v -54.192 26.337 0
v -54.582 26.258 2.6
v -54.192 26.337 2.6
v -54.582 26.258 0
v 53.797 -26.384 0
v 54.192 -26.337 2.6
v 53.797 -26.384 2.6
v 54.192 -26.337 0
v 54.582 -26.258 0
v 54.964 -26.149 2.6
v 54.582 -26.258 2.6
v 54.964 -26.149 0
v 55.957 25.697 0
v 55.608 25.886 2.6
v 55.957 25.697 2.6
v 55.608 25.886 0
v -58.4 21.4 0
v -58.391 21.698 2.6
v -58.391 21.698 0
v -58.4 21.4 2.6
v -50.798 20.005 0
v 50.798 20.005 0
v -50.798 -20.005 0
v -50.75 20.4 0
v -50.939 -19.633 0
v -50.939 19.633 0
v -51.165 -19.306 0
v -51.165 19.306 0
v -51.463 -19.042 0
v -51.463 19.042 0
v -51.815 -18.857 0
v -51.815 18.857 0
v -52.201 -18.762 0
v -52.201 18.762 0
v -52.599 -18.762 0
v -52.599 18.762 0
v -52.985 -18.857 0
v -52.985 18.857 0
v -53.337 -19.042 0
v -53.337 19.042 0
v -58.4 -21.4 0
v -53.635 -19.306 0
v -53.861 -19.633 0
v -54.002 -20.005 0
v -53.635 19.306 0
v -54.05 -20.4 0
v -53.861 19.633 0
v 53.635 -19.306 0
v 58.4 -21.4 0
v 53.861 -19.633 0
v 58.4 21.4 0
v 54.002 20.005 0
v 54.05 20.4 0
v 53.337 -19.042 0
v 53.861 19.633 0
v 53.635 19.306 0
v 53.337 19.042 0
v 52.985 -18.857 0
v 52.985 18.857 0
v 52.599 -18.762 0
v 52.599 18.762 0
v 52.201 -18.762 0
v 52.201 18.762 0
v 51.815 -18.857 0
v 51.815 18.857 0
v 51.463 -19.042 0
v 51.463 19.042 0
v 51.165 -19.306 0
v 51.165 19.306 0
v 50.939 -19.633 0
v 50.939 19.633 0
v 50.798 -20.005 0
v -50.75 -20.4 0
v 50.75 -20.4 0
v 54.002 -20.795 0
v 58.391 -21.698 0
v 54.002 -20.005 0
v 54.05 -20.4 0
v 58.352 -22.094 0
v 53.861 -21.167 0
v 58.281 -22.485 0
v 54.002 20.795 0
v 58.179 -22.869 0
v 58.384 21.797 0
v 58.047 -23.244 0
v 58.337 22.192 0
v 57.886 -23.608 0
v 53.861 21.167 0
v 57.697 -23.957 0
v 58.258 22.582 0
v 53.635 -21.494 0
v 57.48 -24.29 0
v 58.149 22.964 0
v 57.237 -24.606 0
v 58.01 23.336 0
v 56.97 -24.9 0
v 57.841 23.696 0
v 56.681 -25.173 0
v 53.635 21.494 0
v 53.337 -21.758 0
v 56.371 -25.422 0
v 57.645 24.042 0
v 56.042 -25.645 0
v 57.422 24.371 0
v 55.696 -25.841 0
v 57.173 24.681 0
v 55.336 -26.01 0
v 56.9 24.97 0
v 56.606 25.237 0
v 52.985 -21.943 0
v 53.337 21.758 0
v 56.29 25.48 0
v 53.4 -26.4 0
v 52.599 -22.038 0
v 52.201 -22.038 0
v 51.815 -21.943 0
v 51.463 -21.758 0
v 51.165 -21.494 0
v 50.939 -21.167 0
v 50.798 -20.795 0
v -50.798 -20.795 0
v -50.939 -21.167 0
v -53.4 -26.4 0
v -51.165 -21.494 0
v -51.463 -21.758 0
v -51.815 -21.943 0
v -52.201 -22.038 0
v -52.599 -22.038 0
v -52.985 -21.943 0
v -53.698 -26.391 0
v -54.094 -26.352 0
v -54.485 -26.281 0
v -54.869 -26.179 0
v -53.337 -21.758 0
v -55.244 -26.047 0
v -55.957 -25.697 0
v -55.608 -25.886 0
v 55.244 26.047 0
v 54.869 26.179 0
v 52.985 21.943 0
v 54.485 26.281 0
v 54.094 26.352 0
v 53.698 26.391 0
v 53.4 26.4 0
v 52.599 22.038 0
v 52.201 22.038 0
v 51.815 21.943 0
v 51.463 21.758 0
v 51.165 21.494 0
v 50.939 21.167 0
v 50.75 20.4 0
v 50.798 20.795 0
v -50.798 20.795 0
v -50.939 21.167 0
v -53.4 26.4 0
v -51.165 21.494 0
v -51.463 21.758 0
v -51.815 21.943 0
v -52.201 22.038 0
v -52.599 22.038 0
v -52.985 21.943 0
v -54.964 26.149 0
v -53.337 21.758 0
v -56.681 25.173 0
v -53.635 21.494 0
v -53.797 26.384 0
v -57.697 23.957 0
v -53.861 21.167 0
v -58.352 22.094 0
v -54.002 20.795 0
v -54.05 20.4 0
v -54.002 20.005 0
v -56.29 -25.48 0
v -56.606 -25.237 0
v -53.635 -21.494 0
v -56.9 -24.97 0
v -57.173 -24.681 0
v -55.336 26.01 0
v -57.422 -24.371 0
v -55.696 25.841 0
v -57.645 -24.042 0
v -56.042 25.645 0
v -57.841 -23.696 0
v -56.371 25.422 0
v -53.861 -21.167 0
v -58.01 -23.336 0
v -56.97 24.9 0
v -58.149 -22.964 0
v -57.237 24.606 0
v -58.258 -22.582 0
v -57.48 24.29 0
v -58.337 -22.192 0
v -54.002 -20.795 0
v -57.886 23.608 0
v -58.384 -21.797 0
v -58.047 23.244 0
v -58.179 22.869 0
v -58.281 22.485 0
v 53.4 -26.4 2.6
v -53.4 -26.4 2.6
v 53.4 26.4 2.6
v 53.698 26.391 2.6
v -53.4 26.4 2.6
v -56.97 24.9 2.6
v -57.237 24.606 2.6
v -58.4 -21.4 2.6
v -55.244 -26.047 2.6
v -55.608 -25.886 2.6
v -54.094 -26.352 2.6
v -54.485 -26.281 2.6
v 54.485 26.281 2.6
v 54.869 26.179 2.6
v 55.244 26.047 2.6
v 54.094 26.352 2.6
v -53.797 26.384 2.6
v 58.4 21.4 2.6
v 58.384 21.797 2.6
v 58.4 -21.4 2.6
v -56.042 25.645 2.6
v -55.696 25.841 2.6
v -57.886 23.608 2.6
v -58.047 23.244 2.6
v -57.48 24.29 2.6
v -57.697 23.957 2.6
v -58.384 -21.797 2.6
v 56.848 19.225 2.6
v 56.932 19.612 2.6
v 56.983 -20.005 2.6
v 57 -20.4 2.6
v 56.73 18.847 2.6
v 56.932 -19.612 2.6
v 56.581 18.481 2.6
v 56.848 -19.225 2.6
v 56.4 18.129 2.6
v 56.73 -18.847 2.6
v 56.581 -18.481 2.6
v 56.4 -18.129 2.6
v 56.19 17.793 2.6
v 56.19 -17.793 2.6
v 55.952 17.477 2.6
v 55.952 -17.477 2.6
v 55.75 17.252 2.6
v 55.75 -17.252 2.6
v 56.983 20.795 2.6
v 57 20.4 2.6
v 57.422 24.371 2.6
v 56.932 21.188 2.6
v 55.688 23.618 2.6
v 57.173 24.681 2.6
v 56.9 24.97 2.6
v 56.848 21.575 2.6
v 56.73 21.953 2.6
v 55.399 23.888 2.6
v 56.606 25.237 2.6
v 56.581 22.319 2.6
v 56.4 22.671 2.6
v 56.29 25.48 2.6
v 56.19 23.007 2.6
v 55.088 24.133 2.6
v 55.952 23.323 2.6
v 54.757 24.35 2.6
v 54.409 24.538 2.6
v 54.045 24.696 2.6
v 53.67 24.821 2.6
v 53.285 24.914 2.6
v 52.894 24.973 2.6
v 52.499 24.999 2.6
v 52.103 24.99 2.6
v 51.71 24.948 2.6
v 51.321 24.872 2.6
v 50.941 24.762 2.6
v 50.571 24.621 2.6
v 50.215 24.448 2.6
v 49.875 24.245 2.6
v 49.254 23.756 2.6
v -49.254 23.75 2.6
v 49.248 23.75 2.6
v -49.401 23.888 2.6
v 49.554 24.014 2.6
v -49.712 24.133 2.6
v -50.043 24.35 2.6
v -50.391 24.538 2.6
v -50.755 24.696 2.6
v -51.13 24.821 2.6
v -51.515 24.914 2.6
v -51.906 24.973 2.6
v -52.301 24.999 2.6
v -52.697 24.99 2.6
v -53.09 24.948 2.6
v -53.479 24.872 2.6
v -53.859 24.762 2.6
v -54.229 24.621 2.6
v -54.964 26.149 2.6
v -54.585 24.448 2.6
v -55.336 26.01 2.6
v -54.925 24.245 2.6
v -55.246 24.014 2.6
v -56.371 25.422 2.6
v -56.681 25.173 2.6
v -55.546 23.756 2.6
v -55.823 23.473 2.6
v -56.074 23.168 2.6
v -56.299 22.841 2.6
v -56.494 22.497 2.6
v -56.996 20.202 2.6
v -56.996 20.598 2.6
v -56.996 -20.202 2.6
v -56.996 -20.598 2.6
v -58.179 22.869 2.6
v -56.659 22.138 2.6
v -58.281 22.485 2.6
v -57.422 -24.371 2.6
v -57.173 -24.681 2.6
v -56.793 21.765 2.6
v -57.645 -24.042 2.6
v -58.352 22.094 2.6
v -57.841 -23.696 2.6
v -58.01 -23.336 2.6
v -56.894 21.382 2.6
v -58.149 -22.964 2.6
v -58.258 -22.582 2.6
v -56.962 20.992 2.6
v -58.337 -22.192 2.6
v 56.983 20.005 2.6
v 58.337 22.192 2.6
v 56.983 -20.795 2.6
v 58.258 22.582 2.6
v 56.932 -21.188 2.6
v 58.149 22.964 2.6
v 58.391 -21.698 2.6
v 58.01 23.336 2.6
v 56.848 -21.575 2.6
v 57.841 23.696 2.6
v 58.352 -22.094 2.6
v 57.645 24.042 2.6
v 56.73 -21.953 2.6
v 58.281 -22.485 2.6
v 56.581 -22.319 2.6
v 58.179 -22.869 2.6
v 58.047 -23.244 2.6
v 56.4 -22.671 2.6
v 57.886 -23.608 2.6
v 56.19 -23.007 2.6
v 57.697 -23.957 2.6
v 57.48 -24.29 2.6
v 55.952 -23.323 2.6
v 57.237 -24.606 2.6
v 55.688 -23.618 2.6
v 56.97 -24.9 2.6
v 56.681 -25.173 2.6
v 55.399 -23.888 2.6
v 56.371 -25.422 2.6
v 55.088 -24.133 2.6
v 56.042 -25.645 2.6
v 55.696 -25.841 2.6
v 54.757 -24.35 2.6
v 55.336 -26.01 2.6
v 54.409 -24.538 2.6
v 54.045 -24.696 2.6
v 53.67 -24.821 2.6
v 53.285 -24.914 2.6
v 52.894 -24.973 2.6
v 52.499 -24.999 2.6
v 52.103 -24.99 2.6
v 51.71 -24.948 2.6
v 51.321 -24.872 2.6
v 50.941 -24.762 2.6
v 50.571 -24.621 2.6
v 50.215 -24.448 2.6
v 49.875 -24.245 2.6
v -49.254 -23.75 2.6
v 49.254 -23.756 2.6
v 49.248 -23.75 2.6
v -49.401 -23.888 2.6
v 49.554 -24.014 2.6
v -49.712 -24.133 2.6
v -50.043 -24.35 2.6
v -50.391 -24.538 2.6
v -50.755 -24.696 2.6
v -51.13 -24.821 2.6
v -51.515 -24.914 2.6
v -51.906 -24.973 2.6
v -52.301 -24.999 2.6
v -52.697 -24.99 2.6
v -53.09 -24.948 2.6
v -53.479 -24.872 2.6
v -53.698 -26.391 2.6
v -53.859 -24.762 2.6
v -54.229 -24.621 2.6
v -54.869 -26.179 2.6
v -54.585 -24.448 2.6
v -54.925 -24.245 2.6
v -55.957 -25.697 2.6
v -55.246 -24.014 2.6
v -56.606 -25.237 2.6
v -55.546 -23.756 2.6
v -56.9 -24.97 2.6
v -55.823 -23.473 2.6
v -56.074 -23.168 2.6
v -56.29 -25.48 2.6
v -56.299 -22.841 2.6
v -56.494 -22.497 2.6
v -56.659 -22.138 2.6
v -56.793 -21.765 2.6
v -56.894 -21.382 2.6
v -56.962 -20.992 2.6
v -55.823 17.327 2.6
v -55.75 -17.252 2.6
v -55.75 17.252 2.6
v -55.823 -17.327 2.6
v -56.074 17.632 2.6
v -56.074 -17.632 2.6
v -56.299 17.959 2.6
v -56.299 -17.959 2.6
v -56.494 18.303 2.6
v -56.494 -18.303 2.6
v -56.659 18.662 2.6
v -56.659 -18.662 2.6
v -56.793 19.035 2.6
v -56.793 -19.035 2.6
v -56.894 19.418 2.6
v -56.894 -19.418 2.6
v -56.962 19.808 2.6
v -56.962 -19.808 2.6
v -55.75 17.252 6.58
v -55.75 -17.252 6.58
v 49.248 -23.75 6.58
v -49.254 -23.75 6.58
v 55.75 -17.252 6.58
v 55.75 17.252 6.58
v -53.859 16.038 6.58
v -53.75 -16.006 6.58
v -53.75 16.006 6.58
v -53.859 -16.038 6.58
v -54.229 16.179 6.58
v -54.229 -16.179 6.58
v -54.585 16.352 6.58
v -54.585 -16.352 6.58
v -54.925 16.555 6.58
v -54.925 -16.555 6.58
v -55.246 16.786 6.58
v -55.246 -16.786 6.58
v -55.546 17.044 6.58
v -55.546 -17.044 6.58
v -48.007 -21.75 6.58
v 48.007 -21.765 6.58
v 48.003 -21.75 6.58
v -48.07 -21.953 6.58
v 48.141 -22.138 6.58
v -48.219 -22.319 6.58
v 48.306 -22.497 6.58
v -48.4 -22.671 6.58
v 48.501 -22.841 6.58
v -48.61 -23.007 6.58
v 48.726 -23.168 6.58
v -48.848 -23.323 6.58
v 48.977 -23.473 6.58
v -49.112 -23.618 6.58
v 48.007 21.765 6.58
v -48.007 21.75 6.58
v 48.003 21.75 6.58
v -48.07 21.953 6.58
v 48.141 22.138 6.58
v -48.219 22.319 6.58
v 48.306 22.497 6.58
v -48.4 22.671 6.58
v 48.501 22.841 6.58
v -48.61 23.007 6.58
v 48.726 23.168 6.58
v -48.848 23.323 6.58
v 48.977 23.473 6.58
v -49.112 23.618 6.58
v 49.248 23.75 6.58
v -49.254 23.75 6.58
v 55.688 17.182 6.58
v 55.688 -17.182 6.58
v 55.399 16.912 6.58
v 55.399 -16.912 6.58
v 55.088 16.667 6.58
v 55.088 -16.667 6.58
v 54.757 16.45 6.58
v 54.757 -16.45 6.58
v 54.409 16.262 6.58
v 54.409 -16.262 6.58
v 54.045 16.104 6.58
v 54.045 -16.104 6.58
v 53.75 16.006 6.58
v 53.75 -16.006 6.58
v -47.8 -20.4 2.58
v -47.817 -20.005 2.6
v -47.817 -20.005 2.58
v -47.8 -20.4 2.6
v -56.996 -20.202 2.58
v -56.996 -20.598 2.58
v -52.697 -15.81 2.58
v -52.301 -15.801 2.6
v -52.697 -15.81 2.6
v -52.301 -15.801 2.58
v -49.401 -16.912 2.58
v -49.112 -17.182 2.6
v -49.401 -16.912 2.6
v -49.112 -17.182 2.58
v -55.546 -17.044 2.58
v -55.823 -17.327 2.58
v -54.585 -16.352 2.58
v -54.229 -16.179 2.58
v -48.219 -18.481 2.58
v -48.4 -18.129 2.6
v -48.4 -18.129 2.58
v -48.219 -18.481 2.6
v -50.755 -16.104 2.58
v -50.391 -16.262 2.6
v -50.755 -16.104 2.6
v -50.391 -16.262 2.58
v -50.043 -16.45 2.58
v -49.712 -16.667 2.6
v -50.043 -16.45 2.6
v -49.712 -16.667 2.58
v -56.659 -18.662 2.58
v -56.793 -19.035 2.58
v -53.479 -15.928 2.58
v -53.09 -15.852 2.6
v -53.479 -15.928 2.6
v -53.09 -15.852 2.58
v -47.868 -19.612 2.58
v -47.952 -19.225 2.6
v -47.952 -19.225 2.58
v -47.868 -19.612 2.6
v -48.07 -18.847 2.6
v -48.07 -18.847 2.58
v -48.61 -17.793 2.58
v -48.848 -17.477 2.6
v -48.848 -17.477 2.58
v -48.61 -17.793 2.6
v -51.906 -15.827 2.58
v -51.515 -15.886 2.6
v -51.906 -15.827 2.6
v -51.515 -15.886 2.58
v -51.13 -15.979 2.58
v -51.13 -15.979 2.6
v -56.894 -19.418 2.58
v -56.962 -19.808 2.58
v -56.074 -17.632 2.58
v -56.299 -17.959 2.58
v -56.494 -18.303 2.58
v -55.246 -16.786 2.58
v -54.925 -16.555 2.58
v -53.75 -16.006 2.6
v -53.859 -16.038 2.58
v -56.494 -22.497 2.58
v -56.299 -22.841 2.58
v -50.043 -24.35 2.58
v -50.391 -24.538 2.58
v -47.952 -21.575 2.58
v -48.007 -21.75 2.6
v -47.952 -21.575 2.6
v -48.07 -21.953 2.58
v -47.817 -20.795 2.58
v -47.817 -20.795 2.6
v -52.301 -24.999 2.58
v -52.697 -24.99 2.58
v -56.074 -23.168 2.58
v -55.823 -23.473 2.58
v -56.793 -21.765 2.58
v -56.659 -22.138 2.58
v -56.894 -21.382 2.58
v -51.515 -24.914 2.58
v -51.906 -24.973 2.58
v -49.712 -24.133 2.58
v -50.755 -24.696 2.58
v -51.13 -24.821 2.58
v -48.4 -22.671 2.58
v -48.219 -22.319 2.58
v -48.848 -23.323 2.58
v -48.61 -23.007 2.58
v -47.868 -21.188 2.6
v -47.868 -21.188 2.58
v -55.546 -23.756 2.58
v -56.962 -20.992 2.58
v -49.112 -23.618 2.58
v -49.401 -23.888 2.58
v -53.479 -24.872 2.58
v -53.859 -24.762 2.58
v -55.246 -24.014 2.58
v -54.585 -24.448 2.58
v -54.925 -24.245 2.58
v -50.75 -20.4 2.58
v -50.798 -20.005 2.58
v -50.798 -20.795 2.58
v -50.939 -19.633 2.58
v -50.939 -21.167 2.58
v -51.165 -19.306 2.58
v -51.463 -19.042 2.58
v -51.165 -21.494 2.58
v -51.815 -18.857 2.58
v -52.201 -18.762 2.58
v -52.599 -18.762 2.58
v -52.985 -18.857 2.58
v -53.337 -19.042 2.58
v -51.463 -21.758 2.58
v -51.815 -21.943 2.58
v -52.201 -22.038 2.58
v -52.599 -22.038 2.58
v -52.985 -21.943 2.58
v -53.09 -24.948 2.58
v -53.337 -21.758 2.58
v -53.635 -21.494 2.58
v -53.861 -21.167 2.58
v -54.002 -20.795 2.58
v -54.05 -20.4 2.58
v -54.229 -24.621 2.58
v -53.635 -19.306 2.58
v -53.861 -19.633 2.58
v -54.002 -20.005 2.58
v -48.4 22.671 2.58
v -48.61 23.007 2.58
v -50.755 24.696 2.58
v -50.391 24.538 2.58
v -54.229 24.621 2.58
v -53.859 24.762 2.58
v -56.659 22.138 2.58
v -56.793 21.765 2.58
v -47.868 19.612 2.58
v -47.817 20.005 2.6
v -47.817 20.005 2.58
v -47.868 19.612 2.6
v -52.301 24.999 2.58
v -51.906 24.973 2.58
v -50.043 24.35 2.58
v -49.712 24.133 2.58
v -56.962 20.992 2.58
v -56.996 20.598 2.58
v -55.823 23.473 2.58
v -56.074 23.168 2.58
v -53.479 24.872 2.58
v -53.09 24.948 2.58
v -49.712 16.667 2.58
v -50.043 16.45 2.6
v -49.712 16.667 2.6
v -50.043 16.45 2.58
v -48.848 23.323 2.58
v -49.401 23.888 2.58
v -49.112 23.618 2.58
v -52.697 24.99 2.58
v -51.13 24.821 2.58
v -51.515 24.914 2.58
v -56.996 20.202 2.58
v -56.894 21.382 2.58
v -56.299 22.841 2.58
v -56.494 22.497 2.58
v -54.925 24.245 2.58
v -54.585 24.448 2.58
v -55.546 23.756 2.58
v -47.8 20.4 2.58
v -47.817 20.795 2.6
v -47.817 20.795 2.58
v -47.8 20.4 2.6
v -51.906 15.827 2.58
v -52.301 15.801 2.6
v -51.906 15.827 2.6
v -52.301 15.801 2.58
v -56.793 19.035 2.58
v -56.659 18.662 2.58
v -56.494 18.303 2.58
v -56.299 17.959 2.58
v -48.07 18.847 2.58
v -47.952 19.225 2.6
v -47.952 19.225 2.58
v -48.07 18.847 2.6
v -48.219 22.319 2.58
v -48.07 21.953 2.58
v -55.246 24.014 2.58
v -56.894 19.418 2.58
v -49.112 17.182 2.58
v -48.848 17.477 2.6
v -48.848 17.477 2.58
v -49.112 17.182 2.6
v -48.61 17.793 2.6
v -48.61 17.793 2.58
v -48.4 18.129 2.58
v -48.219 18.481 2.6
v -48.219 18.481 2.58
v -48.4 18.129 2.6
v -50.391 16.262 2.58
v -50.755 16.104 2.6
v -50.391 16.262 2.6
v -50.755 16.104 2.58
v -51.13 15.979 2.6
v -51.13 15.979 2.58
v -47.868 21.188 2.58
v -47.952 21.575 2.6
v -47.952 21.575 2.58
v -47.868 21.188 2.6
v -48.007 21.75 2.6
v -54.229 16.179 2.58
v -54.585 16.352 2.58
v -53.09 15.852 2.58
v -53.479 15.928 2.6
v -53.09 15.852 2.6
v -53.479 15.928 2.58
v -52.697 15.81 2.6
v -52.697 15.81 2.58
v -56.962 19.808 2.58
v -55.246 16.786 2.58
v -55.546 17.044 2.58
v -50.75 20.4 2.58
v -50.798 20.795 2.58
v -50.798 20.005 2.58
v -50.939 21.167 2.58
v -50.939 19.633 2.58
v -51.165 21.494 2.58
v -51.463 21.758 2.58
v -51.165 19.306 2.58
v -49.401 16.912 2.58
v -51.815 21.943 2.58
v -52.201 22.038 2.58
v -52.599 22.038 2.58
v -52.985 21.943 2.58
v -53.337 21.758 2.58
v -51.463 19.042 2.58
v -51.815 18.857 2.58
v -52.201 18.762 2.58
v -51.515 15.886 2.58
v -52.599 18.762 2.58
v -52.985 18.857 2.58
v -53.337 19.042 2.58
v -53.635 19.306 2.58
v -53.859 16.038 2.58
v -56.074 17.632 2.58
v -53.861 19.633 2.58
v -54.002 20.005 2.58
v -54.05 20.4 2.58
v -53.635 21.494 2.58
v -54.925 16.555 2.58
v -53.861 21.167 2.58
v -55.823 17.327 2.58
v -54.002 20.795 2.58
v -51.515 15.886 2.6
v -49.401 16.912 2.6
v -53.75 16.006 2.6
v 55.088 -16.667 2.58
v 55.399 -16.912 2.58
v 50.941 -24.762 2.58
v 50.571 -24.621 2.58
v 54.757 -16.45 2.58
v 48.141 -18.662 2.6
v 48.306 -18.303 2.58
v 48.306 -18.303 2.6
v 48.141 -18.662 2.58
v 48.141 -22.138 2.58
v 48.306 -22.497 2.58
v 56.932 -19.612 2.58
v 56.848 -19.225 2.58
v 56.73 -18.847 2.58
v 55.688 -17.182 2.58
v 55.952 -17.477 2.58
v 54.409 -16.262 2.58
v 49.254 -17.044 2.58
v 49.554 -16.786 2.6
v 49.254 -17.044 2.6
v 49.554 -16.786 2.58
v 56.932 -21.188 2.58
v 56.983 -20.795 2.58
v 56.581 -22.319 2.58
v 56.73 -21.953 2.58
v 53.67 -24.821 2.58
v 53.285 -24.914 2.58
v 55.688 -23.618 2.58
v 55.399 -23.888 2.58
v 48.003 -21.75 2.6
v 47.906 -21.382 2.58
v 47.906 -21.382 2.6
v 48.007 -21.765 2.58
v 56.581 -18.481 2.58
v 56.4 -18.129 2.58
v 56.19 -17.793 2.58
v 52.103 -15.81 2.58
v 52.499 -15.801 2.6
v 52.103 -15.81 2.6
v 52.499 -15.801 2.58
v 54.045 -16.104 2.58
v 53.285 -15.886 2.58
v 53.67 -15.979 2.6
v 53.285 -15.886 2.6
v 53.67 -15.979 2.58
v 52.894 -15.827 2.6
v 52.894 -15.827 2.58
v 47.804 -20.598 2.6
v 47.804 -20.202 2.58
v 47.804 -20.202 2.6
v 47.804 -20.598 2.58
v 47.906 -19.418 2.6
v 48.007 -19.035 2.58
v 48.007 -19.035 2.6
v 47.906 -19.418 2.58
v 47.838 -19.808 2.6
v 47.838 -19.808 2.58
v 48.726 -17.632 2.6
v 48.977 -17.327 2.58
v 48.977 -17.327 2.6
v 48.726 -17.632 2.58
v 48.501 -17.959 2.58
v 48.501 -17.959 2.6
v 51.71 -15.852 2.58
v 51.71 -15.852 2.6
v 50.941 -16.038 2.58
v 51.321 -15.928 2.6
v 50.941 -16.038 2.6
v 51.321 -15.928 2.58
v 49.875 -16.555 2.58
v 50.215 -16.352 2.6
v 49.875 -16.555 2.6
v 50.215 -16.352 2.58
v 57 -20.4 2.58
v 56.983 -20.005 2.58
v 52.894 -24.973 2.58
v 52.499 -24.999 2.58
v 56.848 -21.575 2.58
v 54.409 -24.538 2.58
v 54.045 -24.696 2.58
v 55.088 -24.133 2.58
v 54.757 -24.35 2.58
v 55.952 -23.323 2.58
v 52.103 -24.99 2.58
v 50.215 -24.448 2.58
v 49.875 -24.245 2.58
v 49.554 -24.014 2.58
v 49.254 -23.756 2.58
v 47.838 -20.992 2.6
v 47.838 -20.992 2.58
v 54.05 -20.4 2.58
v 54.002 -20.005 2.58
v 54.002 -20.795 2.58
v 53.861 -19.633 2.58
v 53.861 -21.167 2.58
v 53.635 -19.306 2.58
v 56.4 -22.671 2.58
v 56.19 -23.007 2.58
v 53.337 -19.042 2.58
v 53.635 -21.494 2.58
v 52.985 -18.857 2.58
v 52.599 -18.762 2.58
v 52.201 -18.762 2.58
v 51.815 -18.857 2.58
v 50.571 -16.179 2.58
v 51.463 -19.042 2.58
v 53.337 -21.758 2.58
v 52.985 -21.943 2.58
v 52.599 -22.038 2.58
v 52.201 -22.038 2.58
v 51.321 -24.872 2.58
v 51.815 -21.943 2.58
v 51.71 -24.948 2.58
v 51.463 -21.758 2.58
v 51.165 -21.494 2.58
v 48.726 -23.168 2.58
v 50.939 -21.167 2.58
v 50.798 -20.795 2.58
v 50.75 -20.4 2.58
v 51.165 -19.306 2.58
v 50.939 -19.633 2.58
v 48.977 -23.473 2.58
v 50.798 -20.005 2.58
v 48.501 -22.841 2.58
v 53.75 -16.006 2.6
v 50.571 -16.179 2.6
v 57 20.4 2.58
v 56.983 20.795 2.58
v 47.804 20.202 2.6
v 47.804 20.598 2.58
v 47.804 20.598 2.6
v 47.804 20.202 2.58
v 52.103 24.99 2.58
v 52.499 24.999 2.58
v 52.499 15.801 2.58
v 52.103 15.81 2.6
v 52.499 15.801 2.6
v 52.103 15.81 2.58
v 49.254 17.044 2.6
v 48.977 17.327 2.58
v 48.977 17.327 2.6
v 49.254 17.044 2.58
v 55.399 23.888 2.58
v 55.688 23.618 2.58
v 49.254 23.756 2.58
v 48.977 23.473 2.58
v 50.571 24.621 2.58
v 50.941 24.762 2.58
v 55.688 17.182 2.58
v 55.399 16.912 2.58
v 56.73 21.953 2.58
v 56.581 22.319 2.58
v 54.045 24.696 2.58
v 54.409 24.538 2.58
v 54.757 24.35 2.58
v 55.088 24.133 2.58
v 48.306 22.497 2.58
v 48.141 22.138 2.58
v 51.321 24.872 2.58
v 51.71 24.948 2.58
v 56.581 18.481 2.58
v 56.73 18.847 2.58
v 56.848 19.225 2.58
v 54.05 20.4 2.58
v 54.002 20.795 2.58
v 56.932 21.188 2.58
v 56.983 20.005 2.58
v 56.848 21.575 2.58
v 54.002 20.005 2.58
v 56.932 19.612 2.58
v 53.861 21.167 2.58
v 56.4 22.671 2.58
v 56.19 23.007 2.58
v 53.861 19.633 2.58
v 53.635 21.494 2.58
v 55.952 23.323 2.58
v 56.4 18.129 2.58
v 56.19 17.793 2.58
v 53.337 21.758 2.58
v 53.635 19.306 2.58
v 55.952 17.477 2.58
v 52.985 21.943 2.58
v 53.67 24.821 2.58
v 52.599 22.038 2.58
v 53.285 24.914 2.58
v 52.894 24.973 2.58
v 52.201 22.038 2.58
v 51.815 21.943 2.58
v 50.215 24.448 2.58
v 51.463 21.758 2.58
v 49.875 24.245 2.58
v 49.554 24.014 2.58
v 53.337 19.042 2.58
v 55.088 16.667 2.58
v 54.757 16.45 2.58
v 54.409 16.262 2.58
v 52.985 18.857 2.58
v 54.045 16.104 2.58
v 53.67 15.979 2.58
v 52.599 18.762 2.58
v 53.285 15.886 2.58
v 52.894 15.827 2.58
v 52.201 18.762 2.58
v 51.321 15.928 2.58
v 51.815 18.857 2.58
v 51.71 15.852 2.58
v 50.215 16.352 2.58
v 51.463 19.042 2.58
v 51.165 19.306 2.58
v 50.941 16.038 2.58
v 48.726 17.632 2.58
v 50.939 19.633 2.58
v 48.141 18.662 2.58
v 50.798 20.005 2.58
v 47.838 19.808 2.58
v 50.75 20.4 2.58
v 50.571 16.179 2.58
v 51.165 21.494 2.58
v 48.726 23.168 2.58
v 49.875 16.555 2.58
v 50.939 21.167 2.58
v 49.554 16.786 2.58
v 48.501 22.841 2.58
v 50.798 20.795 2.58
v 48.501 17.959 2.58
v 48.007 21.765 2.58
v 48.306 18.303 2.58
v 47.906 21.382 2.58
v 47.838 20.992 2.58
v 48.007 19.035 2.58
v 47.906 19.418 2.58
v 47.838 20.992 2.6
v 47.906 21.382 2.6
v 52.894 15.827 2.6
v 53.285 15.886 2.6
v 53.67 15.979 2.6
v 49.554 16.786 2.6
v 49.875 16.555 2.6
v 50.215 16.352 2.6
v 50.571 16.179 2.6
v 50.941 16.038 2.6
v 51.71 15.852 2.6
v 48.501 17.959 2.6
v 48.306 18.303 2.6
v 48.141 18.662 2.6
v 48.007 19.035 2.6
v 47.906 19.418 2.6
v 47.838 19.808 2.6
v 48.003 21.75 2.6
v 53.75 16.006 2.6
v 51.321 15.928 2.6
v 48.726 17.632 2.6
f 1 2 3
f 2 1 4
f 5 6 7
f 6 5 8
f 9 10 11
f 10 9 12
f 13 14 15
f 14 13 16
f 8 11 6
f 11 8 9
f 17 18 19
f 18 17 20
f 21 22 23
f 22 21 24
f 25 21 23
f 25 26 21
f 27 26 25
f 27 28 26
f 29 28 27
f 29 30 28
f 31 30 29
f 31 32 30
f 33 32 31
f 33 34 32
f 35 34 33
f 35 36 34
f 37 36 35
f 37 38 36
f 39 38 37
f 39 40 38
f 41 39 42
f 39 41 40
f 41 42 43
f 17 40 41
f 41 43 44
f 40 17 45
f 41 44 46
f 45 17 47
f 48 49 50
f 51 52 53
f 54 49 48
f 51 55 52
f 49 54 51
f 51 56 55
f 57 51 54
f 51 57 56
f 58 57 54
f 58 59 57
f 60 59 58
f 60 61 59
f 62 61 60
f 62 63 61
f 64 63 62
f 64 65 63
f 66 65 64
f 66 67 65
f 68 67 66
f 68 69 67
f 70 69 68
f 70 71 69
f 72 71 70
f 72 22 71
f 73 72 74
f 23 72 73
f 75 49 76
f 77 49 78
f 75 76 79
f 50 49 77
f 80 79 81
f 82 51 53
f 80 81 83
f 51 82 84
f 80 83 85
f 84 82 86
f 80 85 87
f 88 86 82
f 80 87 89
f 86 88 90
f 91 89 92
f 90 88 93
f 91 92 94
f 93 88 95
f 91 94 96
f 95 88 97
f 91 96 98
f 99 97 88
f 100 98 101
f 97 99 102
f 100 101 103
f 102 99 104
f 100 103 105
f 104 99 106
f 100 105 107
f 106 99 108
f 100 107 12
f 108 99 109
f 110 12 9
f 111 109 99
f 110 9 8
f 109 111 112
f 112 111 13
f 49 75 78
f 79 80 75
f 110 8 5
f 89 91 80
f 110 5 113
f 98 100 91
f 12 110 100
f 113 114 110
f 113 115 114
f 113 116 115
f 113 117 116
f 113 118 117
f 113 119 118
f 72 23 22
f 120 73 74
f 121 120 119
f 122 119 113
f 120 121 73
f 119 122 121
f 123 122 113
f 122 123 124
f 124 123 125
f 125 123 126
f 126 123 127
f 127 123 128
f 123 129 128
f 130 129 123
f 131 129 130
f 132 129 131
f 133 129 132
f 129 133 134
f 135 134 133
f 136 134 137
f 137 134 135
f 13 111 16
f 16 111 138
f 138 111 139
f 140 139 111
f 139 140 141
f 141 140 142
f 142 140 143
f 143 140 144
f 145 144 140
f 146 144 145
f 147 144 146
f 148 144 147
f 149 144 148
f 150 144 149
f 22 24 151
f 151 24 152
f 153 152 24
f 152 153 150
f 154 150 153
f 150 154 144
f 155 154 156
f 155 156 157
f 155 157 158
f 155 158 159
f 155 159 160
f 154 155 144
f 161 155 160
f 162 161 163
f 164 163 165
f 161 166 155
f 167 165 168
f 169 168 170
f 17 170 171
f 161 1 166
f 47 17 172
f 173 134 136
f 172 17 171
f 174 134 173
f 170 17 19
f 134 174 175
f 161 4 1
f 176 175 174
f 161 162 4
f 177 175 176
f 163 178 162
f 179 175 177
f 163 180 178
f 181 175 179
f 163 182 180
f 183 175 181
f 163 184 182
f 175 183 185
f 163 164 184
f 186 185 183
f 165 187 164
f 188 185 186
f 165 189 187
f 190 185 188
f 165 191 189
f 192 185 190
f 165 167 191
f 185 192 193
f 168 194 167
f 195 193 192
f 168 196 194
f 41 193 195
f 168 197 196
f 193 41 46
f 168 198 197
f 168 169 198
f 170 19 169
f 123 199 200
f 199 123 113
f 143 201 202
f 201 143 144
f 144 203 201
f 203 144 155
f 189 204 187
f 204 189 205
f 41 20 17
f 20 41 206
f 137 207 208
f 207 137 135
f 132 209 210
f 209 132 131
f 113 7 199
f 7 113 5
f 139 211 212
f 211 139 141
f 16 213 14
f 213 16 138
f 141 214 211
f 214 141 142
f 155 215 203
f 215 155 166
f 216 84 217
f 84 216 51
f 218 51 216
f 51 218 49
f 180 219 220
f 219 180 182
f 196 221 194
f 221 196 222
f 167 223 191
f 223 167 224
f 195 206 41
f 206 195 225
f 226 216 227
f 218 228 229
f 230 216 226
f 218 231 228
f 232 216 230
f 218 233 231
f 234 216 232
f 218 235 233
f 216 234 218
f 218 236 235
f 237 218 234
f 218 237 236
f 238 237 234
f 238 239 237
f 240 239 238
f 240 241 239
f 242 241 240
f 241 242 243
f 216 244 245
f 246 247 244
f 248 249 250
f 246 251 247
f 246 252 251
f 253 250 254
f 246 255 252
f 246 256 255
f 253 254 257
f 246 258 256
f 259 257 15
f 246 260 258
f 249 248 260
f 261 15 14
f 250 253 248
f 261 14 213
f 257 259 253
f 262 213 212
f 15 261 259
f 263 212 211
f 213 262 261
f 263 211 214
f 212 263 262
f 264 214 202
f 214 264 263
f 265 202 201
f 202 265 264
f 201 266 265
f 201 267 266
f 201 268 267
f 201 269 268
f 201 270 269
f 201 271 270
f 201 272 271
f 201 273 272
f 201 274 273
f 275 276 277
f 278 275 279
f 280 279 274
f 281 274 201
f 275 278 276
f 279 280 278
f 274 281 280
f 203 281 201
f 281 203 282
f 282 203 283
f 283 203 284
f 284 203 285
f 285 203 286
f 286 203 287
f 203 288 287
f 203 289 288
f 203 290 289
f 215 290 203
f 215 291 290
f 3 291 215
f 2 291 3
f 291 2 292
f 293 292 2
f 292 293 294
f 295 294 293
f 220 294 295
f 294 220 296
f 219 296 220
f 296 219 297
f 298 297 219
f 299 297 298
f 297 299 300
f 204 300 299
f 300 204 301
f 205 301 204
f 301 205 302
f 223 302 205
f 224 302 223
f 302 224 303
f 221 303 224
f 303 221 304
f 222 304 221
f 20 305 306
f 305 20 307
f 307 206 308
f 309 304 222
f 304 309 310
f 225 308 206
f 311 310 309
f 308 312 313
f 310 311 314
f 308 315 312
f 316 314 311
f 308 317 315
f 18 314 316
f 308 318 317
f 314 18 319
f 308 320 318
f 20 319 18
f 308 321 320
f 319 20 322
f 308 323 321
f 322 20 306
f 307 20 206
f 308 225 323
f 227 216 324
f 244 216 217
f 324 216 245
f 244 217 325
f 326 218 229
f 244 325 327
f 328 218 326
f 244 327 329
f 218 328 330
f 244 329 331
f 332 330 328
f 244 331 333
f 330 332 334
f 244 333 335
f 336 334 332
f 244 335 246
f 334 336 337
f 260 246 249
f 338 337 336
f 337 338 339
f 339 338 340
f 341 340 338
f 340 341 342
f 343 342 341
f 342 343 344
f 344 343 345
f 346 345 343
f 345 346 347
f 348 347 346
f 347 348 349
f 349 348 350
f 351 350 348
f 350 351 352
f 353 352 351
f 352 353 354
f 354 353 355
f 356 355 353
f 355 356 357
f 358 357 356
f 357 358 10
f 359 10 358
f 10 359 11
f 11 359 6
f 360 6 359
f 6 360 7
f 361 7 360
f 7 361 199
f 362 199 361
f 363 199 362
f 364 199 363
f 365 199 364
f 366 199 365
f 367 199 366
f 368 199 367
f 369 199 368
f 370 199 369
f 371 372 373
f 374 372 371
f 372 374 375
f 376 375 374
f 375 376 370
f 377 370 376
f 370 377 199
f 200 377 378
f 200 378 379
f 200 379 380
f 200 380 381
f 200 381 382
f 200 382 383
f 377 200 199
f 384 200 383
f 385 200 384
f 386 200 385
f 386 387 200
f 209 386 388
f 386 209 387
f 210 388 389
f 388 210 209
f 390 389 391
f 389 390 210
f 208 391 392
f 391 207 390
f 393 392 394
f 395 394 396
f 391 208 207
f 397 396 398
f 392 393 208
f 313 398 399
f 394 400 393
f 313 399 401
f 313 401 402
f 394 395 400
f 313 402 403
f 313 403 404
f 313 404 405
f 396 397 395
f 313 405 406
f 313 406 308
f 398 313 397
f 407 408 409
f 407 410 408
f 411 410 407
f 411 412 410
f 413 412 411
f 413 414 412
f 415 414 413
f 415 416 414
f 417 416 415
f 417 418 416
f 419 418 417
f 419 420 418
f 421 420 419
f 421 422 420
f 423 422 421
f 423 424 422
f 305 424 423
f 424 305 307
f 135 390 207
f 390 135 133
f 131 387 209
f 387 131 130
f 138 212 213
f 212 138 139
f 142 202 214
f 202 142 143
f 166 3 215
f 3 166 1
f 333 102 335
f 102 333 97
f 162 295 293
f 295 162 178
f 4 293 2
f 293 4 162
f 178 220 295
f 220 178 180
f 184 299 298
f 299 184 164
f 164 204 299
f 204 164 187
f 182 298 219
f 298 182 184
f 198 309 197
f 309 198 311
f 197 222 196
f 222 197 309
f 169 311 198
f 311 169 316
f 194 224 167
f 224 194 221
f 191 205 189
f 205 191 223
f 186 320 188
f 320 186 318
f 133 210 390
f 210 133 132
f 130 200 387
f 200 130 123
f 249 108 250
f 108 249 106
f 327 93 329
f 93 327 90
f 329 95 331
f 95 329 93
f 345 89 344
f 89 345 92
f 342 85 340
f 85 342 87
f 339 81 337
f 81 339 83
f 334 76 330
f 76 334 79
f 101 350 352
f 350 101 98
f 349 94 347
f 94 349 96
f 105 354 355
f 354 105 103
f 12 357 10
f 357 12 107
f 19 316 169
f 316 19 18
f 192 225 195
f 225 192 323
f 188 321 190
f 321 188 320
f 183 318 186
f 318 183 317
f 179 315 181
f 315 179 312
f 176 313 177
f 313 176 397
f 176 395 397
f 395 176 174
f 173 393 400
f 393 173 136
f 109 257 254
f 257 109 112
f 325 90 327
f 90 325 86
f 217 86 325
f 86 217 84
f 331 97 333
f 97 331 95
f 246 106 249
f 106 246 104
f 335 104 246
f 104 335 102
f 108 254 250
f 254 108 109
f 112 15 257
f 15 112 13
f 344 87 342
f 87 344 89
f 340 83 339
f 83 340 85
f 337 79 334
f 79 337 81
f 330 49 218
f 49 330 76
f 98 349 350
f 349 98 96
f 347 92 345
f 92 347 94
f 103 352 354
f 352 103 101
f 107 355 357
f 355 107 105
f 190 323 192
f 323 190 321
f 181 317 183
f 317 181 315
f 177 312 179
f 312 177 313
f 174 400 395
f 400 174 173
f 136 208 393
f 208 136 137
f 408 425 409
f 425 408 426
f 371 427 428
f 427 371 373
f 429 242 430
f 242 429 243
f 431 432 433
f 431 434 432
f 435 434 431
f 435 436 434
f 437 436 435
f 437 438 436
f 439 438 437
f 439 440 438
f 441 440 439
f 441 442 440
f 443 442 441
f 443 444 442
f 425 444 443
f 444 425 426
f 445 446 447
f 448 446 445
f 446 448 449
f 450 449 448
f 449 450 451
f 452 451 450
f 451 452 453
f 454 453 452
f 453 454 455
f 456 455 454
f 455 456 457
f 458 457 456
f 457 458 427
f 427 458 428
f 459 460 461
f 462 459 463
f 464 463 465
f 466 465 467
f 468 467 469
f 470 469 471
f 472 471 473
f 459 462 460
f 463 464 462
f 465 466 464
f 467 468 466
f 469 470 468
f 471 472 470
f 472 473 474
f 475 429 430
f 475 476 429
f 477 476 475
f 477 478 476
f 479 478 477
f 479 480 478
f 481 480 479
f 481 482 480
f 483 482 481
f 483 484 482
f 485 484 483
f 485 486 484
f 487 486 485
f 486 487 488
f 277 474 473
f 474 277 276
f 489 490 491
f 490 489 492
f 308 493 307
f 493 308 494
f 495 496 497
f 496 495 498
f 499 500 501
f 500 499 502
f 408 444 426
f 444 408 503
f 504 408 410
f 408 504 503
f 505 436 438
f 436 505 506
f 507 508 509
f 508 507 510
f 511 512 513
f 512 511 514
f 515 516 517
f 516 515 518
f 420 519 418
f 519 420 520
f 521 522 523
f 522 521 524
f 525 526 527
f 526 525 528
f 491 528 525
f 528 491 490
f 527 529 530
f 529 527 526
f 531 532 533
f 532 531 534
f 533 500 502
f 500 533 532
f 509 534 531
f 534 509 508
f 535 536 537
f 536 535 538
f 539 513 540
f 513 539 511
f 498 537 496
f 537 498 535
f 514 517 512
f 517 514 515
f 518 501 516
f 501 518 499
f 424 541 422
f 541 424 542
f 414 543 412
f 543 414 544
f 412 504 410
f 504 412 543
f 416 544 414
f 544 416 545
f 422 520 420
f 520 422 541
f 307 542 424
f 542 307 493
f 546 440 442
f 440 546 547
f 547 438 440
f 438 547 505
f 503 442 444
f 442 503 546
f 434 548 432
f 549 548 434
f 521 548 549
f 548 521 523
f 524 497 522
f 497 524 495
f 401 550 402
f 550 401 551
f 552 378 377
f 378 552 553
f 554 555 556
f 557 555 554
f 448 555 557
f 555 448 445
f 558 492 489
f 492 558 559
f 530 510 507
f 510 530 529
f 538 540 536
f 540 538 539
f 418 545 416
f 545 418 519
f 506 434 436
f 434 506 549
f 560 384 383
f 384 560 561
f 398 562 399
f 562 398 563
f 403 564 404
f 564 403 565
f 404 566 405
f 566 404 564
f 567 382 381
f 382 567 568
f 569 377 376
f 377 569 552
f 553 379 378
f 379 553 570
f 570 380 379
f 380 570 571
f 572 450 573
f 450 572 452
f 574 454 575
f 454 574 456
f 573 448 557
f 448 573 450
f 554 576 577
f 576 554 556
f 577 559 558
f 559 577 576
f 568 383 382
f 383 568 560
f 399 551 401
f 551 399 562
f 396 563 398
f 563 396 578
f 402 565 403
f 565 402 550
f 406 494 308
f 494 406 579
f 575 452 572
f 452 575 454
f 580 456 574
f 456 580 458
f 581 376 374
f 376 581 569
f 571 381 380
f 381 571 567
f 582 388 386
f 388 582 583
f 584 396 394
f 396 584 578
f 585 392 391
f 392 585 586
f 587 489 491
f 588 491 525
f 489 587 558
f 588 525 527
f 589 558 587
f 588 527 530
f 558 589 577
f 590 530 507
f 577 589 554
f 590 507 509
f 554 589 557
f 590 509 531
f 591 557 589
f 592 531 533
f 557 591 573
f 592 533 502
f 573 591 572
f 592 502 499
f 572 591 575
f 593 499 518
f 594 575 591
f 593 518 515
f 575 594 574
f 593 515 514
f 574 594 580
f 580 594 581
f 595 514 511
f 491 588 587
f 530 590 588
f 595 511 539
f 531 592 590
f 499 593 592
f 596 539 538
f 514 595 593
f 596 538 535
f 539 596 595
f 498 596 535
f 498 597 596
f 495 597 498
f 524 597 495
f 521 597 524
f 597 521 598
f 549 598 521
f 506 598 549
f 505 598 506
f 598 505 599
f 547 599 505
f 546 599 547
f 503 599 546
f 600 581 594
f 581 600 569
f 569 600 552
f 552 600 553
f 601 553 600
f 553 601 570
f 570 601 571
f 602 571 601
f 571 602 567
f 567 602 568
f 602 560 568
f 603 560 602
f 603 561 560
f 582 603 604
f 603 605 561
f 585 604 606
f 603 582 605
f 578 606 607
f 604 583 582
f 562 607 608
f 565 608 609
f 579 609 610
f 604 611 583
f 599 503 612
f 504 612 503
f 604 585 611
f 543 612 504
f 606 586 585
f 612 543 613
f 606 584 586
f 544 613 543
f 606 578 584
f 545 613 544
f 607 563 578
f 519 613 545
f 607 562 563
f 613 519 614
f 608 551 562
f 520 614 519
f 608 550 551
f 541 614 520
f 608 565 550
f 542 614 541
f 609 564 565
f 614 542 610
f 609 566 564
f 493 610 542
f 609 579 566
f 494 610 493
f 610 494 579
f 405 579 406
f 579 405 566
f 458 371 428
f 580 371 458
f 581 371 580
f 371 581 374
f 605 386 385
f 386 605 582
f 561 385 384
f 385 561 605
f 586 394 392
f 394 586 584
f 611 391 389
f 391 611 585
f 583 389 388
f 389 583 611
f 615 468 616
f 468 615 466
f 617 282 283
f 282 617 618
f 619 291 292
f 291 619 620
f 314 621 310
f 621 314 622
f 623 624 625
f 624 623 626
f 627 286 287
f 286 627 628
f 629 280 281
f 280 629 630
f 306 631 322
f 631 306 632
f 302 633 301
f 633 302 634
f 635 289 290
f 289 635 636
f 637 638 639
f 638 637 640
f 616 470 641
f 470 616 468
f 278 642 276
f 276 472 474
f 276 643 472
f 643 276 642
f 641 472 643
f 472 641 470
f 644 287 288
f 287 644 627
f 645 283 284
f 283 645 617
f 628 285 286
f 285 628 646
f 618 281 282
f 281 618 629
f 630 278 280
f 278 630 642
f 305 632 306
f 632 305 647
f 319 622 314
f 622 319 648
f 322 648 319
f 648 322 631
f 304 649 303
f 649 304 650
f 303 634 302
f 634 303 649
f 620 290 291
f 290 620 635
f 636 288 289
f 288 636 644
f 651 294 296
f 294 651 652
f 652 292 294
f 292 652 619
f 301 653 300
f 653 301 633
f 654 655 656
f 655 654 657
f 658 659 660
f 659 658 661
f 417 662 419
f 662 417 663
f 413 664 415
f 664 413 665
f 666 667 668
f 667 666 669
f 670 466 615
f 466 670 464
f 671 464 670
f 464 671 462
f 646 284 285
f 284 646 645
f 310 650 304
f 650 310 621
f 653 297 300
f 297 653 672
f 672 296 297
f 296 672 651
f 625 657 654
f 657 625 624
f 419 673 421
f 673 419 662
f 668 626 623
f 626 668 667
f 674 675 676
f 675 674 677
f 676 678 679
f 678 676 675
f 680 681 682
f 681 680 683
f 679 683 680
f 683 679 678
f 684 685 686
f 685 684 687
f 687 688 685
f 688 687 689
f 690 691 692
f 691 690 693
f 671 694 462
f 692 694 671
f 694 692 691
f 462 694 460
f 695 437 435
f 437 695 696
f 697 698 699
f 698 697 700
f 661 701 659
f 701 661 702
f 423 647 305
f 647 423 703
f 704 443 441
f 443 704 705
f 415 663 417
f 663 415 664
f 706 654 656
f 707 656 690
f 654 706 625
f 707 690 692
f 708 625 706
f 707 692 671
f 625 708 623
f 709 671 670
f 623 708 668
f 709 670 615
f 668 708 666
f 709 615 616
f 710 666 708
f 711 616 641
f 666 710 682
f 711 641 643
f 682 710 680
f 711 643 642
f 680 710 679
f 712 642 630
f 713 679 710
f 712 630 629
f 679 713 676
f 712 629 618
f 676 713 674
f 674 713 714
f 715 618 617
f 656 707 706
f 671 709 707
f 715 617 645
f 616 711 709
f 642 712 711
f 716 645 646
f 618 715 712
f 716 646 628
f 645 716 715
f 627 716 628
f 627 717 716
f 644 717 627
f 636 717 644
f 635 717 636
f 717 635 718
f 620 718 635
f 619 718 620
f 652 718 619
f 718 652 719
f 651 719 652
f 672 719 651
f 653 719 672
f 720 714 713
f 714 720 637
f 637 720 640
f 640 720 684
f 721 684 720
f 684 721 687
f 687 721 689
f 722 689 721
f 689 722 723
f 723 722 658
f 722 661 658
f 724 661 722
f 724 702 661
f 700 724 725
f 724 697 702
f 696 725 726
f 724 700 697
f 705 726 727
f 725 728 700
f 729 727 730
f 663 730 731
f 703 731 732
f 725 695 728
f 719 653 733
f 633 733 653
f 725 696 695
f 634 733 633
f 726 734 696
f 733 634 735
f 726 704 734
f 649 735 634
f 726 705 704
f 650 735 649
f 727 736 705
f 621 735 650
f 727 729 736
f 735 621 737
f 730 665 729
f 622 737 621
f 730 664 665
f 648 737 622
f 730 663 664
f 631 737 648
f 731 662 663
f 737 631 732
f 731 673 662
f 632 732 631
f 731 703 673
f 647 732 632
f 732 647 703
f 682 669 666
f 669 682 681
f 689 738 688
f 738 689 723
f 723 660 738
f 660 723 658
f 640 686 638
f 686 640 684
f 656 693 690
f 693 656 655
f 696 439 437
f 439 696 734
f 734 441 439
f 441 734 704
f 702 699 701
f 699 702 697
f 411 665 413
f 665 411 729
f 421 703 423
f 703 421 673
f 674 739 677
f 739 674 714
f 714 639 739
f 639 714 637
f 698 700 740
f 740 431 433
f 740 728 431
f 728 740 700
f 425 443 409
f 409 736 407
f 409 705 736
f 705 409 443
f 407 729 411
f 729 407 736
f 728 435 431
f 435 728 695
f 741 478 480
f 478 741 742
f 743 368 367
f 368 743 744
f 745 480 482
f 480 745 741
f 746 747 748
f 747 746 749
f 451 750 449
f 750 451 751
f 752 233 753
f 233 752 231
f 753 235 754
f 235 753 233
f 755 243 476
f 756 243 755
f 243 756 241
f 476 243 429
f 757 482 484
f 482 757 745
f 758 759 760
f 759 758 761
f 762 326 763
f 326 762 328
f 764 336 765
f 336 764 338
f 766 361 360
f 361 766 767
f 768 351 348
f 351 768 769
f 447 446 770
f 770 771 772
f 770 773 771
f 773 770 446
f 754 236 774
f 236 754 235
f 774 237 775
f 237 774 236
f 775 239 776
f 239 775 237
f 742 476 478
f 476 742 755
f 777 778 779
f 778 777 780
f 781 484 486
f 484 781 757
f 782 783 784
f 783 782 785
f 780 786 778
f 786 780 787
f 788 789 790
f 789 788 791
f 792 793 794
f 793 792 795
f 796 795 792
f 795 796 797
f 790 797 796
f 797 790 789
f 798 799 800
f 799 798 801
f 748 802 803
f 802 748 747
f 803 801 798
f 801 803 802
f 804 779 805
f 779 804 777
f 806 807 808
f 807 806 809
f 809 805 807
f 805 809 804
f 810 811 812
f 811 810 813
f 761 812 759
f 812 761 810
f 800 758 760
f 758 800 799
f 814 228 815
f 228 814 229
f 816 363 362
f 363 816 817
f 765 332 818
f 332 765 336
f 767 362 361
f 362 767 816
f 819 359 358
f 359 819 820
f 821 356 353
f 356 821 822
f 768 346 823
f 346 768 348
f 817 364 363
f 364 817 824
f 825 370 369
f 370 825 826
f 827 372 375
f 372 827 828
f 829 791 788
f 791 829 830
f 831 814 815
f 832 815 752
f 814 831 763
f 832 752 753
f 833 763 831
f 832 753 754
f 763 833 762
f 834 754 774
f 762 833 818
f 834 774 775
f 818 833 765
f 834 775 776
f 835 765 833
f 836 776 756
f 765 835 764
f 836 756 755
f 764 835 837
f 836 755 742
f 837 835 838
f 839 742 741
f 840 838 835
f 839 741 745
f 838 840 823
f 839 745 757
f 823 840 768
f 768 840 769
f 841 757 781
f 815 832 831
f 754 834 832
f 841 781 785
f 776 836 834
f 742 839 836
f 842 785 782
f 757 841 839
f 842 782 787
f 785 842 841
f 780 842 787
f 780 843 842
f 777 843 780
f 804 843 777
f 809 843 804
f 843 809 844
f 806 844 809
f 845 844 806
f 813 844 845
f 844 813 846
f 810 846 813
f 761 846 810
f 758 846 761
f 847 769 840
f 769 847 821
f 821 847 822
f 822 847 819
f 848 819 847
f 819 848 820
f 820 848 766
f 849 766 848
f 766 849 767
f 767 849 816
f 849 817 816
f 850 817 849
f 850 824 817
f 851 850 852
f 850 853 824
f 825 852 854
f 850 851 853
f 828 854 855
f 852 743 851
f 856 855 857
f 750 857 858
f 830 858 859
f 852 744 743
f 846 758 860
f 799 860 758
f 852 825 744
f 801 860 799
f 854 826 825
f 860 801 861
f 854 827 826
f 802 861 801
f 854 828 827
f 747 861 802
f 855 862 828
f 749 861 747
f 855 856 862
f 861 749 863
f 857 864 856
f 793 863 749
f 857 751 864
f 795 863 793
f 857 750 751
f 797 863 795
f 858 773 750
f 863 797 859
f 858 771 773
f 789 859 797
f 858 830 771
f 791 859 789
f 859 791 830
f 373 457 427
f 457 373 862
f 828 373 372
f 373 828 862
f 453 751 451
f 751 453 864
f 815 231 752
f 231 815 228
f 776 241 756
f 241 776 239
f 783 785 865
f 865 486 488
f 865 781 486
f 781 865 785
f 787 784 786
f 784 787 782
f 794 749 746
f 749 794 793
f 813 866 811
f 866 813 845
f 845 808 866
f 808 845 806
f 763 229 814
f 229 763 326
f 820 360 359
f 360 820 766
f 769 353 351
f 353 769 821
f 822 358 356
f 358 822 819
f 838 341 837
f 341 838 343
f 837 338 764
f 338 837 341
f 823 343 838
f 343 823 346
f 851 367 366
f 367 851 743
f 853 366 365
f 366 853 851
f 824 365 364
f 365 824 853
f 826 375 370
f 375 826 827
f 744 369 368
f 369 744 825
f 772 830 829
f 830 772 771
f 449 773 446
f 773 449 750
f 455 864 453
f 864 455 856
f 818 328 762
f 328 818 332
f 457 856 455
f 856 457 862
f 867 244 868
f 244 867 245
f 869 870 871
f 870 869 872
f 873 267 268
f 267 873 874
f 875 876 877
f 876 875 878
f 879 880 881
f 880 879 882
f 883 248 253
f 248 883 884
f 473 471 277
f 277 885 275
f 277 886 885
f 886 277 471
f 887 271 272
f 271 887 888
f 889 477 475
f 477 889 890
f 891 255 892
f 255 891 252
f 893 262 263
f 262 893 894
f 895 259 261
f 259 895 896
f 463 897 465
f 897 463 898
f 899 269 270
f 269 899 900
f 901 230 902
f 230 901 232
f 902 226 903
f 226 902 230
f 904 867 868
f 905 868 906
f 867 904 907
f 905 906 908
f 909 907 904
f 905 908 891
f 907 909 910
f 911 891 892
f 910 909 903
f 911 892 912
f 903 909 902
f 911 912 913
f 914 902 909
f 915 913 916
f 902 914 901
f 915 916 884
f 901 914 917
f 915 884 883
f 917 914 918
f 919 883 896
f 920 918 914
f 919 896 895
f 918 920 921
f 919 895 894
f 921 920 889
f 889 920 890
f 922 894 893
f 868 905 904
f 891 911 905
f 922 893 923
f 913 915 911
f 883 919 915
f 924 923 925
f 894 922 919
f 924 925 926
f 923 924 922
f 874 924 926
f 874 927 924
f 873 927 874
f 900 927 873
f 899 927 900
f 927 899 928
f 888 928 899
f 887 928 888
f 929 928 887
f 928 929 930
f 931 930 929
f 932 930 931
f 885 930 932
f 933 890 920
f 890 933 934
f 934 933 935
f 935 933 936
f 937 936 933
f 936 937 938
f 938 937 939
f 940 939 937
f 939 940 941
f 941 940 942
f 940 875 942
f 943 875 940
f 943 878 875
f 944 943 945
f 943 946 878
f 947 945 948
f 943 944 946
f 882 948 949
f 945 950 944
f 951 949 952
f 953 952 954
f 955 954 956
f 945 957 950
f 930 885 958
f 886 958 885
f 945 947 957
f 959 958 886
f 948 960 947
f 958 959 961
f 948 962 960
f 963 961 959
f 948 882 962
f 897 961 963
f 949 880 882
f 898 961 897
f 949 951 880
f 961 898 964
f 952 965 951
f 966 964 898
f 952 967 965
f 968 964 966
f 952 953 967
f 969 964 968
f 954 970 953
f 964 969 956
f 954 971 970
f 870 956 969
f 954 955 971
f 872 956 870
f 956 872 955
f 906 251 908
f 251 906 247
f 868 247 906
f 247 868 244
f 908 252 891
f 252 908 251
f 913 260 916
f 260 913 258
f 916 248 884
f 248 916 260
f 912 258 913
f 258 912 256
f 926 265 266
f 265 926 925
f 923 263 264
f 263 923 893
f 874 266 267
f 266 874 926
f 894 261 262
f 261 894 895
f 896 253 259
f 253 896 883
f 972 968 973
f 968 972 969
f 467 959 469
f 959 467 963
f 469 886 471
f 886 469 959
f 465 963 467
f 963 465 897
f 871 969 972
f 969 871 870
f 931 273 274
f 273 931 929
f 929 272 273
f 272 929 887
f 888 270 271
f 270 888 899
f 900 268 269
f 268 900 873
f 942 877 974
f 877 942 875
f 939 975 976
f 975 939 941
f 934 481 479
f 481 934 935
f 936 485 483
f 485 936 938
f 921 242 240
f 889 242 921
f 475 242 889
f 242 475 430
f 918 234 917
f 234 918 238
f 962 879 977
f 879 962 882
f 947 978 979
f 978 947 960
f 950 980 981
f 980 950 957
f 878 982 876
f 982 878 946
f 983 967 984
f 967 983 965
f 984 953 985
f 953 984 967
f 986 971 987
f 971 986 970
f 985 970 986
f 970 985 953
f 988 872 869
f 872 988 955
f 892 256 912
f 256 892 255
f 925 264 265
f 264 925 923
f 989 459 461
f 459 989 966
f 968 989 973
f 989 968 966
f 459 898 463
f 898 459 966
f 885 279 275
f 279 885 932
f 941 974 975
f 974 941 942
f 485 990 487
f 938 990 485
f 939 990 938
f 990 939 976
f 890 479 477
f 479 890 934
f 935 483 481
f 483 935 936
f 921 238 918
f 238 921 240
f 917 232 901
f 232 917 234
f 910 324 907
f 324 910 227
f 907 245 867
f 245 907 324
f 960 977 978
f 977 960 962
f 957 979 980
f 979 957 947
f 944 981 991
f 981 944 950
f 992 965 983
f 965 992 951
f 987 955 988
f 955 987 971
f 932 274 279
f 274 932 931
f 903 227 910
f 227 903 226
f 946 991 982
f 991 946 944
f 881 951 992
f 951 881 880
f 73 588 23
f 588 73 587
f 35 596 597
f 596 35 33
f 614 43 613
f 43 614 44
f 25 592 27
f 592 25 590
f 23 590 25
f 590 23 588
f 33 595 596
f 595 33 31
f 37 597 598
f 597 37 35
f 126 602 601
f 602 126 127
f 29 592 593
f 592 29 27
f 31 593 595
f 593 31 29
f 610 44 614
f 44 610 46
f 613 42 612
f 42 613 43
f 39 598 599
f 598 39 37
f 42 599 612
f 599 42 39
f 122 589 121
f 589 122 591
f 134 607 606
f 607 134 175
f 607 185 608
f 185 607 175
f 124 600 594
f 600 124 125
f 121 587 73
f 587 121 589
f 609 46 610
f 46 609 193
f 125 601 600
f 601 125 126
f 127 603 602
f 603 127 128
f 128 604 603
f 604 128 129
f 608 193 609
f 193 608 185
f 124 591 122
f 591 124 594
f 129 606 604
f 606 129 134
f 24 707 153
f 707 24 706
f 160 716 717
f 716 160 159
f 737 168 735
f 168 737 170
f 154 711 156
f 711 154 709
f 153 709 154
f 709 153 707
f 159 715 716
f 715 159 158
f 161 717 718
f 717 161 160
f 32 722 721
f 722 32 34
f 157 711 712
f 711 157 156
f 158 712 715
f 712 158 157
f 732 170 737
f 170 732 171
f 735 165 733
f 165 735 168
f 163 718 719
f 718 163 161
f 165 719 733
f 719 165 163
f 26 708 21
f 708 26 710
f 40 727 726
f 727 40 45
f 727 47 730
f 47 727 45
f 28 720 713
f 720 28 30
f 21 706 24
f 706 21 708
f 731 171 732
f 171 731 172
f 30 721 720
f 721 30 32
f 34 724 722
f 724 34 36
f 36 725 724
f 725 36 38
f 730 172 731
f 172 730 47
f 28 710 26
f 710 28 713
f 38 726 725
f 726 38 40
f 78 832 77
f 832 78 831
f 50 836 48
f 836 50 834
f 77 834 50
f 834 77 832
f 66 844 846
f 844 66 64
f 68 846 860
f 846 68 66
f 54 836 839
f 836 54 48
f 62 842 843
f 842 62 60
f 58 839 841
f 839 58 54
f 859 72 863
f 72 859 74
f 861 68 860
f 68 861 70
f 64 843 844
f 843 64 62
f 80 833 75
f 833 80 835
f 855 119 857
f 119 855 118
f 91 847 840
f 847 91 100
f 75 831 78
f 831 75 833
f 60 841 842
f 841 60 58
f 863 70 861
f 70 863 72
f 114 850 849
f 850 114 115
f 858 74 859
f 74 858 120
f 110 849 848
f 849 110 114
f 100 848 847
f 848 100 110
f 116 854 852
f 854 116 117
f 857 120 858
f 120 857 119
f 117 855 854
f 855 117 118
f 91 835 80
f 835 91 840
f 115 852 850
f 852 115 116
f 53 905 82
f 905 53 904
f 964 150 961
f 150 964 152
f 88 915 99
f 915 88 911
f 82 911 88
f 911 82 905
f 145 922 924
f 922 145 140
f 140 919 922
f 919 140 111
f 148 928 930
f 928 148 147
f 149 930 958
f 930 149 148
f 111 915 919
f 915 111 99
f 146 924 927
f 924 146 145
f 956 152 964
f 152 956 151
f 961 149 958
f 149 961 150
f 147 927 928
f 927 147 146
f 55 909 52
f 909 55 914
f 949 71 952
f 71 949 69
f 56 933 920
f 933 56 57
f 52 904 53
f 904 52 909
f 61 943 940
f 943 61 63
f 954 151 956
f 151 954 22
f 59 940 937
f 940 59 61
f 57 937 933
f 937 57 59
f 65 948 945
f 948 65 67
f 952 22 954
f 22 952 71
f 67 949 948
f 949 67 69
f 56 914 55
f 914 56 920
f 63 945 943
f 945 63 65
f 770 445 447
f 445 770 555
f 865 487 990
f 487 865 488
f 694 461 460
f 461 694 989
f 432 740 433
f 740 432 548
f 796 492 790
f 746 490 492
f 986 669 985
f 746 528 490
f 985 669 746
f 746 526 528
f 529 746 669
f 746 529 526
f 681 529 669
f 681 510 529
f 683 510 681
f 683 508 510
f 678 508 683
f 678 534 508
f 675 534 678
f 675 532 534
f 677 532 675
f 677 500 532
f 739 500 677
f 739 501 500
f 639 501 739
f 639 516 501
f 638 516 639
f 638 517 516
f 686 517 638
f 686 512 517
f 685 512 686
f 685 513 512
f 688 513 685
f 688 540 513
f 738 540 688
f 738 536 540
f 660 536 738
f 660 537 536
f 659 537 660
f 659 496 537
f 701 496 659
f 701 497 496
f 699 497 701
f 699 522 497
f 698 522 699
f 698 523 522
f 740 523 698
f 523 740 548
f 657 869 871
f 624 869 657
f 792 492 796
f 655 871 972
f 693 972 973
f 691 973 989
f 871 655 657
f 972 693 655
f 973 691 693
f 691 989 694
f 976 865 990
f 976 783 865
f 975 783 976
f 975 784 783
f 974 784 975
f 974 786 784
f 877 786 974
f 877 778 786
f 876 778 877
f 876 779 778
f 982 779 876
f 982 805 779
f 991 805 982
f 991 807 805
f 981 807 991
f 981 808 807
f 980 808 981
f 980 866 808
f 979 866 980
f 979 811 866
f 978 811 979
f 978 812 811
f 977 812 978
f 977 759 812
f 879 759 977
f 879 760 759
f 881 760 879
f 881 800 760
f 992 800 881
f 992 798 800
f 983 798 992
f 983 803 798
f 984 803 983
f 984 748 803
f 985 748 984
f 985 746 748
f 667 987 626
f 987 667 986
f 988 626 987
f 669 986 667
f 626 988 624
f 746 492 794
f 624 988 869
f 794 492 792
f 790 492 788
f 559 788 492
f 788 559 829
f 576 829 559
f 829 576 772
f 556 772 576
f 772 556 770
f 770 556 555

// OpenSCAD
// =====================================================================
//  AquaFeeder -- tampa da caixa da eletronica
//  4x M3 x 10mm. O labio interno cria uma barreira contra respingo.
//  Imprimir COMO ESTA (labio para cima). Sem suporte.
// =====================================================================
include <common.scad>

ox = box_ix + 2*box_wall;
oy = box_iy + 2*box_wall;
lid_t   = 2.6;
post_r  = 4.2;
hx      = ox/2 - box_wall - post_r + 0.6;
hy      = oy/2 - box_wall - post_r + 0.6;

module box_lid() {
    difference() {
        union() {
            rbox(ox, oy, lid_t, 5);
            // labio que entra na caixa
            translate([0, 0, lid_t - eps])
                rbox(box_ix - 0.5, box_iy - 0.5, box_lip, 3.5);
        }
        // vazio do labio (o labio e so um anel de vedacao)
        translate([0, 0, lid_t])
            rbox(box_ix - 0.5 - 2*2.0, box_iy - 0.5 - 2*2.0, box_lip + 1, 2.5);
        // folga para as colunas de canto da caixa
        for (sx = [-1, 1], sy = [-1, 1])
            translate([sx * hx, sy * hy, lid_t - eps])
                cylinder(r = post_r + 0.4, h = box_lip + 2);
        // parafusos
        for (sx = [-1, 1], sy = [-1, 1])
            translate([sx * hx, sy * hy, -1])
                cylinder(d = m3_free + fit, h = lid_t + box_lip + 2);
    }
}

box_lid();
